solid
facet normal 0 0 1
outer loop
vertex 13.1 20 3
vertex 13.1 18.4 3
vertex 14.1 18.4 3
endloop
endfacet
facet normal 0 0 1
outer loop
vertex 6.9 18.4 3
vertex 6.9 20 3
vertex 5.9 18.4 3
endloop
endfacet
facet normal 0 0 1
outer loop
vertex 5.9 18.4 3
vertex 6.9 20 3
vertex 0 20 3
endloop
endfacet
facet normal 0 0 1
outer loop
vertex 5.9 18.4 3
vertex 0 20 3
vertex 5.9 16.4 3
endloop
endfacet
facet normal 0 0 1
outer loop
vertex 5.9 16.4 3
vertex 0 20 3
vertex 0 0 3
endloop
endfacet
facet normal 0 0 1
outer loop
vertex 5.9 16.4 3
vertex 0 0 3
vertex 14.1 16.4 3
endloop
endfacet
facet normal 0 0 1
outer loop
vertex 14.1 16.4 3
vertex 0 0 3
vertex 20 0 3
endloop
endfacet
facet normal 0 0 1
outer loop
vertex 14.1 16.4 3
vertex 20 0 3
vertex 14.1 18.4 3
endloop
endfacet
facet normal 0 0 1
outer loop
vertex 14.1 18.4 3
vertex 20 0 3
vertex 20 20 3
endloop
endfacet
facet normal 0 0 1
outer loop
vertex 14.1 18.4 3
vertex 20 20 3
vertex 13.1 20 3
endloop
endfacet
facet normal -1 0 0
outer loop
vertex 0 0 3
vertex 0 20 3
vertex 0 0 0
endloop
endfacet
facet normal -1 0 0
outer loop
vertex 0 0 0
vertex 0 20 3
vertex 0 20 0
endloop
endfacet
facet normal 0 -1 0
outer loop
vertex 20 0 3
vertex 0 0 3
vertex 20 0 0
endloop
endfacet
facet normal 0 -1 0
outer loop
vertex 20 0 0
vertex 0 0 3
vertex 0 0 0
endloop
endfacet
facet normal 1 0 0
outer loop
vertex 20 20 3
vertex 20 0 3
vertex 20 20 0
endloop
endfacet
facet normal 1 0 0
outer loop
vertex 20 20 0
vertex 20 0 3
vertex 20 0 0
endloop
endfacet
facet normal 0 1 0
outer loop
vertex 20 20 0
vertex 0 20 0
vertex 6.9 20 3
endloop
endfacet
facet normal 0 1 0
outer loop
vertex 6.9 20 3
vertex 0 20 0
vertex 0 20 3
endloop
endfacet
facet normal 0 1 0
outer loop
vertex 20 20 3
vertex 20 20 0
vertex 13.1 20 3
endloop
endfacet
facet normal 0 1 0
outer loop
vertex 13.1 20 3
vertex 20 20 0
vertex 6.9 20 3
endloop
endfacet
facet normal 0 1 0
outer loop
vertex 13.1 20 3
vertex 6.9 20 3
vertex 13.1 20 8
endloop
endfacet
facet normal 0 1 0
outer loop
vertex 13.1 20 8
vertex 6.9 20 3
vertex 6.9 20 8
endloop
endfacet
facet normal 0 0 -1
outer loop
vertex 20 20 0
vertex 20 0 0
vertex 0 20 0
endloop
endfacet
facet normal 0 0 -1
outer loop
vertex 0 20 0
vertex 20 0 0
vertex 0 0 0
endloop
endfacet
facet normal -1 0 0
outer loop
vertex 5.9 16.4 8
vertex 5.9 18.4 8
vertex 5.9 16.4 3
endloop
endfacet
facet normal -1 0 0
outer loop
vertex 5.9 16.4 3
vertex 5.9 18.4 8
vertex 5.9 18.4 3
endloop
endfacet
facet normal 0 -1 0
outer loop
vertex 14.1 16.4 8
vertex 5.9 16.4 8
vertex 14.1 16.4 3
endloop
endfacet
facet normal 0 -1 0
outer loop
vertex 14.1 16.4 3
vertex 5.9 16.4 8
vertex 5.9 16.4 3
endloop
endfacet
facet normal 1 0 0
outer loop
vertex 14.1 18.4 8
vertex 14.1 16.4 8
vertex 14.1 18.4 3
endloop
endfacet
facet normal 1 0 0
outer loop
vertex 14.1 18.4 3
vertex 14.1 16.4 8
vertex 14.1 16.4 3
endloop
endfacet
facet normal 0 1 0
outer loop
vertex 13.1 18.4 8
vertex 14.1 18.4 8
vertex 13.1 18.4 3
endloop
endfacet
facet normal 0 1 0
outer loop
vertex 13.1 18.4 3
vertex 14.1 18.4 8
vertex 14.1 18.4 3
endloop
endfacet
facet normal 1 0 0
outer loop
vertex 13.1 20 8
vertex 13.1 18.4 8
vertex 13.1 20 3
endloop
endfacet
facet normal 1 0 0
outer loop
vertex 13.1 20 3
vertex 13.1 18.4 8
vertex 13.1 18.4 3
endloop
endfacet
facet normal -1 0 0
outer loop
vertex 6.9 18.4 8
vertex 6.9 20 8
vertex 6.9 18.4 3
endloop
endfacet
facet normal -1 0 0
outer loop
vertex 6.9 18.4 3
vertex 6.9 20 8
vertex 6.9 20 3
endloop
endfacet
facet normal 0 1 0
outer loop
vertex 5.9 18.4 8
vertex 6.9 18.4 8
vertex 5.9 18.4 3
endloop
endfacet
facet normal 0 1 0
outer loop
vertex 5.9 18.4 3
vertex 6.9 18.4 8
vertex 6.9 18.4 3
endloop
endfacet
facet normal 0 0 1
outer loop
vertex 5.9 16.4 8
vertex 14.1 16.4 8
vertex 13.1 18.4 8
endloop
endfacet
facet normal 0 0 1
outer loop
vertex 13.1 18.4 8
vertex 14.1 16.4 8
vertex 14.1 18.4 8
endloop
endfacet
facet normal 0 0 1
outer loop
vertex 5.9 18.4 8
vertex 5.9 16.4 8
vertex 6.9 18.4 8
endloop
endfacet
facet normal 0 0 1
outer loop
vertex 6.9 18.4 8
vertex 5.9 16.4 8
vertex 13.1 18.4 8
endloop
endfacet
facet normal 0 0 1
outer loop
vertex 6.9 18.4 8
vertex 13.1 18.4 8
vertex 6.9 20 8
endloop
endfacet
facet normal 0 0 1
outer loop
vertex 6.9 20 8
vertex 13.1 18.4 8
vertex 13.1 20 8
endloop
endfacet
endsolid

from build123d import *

# Parameters (mm, degrees)
SKETCH1_W           = 20
SKETCH1_H           = 20
BOSS_EXTRUDE1_DEPTH = 3
BOSS_EXTRUDE2_DEPTH = 5


with BuildPart() as part:
    # Sketch1 → Boss-Extrude1 (new body)
    with BuildSketch(Plane.XY):
        with Locations((10, 10)):
            Rectangle(SKETCH1_W, SKETCH1_H)
    extrude(amount=BOSS_EXTRUDE1_DEPTH)

    # Sketch2 → Boss-Extrude2 (add)
    with BuildSketch(Plane.XY.offset(3)):
        Polygon((6.9, 20), (6.9, 18.4), (5.9, 18.4), (5.9, 16.4), (13.1, 16.4), (14.1, 16.4), (14.1, 18.4), (13.1, 18.4), (13.1, 20), align=None)
    extrude(amount=BOSS_EXTRUDE2_DEPTH)


solid = part.part
